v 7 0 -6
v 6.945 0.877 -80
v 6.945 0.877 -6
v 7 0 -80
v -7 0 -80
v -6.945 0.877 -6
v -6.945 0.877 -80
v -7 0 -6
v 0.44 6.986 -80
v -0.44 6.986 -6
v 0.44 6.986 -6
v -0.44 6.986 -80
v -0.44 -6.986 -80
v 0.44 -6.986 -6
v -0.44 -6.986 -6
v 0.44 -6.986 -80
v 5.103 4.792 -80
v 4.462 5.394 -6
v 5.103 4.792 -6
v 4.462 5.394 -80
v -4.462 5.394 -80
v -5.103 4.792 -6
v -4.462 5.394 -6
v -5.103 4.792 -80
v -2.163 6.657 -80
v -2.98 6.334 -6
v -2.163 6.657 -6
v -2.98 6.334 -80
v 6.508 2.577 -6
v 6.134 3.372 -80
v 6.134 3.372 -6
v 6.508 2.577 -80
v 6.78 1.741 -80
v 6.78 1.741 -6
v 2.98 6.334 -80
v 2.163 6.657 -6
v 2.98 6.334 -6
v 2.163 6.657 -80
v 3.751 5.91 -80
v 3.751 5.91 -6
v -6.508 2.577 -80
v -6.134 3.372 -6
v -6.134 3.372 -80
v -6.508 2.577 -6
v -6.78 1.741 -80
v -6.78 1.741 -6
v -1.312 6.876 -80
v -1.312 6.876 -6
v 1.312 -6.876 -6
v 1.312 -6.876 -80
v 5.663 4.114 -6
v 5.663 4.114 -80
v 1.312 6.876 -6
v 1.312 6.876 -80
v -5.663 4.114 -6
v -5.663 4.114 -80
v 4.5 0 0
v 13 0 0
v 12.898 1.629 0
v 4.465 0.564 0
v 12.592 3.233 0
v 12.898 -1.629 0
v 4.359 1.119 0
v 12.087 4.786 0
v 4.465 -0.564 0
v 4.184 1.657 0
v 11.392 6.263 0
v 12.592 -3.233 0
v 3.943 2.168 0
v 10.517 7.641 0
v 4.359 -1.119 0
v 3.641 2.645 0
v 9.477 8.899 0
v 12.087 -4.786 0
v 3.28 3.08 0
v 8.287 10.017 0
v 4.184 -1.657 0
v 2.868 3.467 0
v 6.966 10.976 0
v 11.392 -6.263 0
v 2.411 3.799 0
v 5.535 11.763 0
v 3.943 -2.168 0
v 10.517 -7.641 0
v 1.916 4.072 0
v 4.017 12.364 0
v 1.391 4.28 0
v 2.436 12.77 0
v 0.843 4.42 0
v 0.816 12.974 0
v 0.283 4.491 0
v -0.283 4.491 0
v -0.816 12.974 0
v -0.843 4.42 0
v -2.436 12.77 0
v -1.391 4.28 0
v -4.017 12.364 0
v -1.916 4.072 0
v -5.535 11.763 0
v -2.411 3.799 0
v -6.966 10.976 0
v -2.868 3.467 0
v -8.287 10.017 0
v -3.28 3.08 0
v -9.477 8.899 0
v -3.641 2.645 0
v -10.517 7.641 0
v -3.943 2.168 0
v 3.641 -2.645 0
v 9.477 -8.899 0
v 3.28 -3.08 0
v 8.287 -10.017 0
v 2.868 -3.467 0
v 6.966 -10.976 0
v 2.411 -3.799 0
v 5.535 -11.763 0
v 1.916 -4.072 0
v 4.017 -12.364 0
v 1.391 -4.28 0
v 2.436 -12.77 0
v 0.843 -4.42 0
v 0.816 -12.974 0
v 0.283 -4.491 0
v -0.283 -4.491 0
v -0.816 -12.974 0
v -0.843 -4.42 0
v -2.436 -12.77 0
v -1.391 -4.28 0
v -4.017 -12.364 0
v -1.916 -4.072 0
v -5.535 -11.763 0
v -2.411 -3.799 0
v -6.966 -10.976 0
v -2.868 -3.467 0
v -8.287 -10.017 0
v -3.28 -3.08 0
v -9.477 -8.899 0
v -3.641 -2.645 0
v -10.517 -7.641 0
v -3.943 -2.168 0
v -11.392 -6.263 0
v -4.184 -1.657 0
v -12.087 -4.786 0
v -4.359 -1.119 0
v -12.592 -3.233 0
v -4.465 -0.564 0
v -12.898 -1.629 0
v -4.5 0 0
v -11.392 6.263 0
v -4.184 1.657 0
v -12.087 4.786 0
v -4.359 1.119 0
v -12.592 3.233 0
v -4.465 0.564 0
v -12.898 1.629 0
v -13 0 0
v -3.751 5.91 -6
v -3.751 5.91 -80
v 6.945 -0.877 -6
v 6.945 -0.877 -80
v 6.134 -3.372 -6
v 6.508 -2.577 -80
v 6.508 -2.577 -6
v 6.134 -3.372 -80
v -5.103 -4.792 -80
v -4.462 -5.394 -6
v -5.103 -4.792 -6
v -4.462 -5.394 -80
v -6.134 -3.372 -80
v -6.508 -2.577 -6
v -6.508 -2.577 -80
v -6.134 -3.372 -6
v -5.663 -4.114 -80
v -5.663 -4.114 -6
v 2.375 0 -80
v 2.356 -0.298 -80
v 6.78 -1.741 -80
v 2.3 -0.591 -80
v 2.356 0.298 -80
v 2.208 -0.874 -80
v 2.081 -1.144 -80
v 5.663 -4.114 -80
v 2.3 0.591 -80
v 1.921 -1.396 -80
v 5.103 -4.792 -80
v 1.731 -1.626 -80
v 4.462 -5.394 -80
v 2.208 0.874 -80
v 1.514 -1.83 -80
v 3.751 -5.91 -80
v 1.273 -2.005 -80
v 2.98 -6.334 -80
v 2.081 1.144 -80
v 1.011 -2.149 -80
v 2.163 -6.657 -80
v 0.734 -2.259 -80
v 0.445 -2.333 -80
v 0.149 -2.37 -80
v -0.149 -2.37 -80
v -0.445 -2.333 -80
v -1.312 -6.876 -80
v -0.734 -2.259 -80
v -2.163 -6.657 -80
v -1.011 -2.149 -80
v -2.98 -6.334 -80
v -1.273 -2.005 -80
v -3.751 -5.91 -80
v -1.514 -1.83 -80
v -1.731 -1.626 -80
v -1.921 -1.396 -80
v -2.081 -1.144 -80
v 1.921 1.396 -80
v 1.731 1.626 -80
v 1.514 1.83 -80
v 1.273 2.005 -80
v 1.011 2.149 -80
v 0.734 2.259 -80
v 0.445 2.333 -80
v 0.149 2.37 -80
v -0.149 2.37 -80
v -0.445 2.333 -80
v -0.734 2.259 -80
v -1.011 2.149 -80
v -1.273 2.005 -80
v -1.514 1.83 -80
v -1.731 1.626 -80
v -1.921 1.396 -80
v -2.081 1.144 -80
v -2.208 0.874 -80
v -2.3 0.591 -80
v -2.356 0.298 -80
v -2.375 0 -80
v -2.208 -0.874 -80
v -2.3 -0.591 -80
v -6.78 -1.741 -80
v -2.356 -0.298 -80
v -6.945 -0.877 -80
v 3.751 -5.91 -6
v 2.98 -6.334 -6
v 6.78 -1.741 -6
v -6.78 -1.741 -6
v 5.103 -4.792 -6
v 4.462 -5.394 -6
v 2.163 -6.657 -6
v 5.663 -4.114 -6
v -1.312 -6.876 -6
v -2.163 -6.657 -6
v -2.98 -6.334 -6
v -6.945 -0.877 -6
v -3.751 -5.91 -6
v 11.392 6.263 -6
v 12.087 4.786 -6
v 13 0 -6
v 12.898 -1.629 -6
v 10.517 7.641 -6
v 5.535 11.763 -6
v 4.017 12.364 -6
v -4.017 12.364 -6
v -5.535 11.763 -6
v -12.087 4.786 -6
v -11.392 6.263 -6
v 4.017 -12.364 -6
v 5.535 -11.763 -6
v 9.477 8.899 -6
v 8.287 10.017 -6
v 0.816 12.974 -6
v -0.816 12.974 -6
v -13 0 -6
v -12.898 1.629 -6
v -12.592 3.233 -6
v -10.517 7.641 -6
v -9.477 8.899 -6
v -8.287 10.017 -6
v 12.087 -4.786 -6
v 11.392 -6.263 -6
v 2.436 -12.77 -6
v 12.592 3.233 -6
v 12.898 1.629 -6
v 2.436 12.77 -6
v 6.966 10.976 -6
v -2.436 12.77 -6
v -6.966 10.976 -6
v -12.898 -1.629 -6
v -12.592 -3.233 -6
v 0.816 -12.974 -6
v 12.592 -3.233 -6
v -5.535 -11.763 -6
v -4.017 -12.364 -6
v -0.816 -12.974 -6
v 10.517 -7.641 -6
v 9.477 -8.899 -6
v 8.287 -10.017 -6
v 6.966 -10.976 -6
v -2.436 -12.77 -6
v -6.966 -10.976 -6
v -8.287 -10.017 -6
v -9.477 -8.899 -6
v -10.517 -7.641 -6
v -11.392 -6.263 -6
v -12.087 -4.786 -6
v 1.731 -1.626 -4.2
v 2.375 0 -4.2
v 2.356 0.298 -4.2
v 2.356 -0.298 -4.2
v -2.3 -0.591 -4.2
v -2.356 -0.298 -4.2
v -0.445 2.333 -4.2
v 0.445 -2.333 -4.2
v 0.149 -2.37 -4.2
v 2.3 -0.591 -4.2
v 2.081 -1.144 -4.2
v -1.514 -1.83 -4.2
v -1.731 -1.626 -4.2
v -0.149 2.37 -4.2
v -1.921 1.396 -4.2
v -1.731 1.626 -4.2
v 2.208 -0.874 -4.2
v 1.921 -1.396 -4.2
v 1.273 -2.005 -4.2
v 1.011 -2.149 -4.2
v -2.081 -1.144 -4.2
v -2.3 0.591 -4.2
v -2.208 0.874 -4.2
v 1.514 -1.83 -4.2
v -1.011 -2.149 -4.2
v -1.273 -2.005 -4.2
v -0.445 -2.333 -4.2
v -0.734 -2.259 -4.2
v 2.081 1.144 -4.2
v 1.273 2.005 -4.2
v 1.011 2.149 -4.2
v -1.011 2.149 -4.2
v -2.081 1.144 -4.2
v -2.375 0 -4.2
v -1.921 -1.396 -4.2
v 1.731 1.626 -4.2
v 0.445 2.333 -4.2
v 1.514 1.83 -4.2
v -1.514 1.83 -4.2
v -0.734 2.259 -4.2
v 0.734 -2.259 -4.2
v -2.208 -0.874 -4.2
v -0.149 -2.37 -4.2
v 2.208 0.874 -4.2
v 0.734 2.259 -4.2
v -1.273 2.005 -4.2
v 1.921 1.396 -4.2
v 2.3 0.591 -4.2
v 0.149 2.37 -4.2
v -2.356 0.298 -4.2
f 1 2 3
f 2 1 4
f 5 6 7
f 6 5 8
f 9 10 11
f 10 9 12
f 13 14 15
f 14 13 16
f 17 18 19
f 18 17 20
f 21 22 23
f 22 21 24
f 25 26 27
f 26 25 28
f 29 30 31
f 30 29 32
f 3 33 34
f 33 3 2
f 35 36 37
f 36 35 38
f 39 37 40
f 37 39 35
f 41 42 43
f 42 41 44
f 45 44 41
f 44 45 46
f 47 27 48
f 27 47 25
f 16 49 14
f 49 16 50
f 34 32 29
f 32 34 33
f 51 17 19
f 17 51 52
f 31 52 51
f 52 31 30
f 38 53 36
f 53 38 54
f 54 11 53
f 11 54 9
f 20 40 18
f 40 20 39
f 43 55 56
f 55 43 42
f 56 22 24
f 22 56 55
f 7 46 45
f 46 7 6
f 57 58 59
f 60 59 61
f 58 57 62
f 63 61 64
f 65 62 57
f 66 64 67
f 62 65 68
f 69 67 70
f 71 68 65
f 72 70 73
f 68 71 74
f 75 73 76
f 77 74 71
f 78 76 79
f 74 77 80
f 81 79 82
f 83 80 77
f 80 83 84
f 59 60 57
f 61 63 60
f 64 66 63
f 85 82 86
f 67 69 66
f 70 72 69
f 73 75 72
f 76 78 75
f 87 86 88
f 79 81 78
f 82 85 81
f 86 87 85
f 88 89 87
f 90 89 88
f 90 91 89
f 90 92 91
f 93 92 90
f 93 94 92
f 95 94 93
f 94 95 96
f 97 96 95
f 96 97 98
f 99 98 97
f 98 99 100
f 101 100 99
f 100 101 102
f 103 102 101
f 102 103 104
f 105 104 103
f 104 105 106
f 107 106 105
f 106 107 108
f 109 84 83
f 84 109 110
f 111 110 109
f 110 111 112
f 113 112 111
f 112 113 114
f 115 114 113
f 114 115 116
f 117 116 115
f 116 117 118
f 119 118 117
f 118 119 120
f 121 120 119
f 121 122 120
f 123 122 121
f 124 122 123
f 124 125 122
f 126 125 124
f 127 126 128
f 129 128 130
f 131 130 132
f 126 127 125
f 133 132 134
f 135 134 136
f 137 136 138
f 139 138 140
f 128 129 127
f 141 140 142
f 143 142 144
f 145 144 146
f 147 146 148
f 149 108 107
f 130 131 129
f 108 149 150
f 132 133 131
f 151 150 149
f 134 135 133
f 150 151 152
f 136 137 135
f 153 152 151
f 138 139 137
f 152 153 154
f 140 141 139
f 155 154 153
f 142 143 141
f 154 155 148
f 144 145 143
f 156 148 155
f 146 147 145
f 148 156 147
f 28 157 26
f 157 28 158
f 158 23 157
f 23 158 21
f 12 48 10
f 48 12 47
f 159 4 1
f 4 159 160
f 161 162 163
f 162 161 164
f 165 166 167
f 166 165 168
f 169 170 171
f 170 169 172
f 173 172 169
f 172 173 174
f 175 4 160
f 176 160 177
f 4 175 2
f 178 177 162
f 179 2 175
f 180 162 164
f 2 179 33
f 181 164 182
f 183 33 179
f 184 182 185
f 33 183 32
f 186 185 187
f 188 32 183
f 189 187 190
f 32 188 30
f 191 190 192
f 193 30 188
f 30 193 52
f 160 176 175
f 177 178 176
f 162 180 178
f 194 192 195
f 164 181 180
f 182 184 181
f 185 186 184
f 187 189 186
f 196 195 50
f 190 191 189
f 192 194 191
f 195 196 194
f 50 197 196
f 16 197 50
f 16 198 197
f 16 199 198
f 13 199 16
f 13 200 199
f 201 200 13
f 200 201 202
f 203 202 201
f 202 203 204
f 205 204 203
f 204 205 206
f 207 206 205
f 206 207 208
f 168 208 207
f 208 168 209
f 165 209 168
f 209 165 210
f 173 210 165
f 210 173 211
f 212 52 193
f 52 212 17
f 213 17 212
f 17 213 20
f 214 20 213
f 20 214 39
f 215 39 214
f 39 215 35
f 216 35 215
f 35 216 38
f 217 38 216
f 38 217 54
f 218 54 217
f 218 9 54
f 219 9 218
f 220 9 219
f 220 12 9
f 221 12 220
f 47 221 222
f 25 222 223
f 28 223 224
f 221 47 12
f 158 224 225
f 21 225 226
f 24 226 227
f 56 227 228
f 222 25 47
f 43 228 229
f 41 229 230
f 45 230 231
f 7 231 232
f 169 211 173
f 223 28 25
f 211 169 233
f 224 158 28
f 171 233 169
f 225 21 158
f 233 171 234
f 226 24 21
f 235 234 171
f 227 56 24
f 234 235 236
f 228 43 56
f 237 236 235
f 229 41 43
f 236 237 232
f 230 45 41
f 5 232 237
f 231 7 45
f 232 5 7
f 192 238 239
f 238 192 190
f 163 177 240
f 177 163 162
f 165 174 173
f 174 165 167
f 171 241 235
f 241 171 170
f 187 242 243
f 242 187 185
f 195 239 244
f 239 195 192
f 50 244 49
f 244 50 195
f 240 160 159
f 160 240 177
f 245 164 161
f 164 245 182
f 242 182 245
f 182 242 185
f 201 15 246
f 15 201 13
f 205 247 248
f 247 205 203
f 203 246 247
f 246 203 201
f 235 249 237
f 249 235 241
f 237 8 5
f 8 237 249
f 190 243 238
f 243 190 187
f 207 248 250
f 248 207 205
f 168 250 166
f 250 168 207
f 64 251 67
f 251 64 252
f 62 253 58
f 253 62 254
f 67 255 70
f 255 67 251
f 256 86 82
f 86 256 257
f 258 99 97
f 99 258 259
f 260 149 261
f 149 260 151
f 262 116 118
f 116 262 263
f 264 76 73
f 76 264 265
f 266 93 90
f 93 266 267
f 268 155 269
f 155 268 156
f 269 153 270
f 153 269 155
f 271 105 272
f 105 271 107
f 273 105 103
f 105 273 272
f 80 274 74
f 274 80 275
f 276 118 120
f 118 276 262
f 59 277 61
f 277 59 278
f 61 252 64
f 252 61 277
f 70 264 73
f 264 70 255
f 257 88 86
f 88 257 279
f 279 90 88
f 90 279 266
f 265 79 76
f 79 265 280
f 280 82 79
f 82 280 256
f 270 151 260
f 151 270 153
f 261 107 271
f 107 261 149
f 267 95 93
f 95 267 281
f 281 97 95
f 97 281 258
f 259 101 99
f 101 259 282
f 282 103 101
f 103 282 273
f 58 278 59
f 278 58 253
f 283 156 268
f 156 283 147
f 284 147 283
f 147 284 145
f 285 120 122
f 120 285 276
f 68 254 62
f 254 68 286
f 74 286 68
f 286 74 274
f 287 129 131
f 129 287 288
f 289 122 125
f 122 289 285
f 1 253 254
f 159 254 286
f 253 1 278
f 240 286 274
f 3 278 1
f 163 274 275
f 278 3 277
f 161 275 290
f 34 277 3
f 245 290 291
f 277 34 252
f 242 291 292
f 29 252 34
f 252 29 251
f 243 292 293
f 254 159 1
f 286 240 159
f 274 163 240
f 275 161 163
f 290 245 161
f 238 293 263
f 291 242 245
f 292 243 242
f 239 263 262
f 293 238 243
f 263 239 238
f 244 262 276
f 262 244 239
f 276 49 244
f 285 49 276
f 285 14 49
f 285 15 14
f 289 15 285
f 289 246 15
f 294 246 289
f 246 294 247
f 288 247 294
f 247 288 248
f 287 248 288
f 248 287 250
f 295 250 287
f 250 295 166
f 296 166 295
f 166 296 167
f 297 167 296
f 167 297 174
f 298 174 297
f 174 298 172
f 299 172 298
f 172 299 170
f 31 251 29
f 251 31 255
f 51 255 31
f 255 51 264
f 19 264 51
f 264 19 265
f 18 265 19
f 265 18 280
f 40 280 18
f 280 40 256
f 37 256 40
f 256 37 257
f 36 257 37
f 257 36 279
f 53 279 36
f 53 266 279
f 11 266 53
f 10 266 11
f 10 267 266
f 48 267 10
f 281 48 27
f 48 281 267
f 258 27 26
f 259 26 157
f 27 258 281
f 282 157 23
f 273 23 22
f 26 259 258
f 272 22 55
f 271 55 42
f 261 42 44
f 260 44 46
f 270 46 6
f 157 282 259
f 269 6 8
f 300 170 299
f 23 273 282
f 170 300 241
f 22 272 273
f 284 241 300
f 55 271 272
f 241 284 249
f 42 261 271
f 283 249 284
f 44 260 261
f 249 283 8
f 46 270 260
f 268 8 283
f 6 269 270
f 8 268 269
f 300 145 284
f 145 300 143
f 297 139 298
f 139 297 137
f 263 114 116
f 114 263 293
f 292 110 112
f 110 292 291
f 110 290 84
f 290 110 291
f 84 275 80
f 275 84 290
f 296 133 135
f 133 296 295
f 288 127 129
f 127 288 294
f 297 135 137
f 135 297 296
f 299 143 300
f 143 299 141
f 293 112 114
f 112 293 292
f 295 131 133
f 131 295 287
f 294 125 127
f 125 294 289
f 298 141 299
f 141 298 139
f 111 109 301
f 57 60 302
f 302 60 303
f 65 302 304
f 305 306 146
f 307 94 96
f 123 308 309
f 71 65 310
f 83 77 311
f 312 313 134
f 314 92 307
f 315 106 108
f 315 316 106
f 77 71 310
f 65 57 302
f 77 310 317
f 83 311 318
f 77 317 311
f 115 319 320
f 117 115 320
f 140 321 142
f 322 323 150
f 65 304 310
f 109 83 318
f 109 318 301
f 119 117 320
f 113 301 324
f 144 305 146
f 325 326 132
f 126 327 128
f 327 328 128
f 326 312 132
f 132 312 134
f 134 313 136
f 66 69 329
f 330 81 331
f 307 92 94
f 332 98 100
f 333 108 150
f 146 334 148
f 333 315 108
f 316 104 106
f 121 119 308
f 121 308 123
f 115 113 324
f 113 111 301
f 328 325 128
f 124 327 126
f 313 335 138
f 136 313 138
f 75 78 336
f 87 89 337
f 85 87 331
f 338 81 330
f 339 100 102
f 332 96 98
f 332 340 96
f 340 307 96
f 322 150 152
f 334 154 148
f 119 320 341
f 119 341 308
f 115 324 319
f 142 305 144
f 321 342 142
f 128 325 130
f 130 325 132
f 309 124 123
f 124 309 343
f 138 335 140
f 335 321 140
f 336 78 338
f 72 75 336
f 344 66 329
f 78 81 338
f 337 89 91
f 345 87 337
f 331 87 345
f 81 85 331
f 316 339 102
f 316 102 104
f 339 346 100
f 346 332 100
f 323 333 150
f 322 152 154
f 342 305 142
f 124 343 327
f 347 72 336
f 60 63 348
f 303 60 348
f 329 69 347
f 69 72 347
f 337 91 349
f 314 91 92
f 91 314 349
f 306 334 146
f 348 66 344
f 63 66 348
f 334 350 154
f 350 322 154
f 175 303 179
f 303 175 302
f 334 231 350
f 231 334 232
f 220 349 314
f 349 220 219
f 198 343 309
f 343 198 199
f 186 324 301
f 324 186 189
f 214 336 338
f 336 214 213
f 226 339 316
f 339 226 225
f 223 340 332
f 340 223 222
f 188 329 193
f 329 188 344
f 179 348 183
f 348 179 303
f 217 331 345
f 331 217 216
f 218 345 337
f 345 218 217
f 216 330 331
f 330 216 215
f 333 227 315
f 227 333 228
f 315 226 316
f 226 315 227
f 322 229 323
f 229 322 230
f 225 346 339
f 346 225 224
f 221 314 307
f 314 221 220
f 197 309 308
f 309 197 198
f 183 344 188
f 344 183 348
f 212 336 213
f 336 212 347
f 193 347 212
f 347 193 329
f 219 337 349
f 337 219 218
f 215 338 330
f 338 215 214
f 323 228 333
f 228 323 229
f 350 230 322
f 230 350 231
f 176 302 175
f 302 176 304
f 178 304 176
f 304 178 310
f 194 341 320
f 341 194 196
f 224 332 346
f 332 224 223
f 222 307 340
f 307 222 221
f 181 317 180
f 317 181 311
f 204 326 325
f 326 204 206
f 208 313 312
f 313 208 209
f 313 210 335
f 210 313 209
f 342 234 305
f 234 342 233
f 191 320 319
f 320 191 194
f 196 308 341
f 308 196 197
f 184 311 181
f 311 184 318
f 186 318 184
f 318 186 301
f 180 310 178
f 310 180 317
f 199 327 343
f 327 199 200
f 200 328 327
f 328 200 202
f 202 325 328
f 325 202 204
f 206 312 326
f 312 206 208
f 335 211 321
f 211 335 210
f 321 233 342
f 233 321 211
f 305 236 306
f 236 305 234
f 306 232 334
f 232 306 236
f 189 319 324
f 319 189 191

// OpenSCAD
$fn = 50;


difference() {
	union() {
		translate(v = [0, 0, -80.0000000000]) {
			cylinder(h = 80, r = 7.0000000000);
		}
		translate(v = [0, 0, -6.0000000000]) {
			cylinder(h = 6, r = 13.0000000000);
		}
	}
	union() {
		translate(v = [0, 0, 0]) {
			rotate(a = [0, 0, 0]) {
				difference() {
					union() {
						#translate(v = [0, 0, -80.0000000000]) {
							cylinder(h = 80, r = 2.2500000000);
						}
						#translate(v = [0, 0, -4.2000000000]) {
							cylinder(h = 4.2000000000, r = 7.0000000000, r1 = 2.3750000000, r2 = 4.5000000000);
						}
						#translate(v = [0, 0, -80.0000000000]) {
							cylinder(h = 80, r = 2.3750000000);
						}
						#translate(v = [0, 0, -80.0000000000]) {
							cylinder(h = 80, r = 2.2500000000);
						}
					}
					union();
				}
			}
		}
	}
}
